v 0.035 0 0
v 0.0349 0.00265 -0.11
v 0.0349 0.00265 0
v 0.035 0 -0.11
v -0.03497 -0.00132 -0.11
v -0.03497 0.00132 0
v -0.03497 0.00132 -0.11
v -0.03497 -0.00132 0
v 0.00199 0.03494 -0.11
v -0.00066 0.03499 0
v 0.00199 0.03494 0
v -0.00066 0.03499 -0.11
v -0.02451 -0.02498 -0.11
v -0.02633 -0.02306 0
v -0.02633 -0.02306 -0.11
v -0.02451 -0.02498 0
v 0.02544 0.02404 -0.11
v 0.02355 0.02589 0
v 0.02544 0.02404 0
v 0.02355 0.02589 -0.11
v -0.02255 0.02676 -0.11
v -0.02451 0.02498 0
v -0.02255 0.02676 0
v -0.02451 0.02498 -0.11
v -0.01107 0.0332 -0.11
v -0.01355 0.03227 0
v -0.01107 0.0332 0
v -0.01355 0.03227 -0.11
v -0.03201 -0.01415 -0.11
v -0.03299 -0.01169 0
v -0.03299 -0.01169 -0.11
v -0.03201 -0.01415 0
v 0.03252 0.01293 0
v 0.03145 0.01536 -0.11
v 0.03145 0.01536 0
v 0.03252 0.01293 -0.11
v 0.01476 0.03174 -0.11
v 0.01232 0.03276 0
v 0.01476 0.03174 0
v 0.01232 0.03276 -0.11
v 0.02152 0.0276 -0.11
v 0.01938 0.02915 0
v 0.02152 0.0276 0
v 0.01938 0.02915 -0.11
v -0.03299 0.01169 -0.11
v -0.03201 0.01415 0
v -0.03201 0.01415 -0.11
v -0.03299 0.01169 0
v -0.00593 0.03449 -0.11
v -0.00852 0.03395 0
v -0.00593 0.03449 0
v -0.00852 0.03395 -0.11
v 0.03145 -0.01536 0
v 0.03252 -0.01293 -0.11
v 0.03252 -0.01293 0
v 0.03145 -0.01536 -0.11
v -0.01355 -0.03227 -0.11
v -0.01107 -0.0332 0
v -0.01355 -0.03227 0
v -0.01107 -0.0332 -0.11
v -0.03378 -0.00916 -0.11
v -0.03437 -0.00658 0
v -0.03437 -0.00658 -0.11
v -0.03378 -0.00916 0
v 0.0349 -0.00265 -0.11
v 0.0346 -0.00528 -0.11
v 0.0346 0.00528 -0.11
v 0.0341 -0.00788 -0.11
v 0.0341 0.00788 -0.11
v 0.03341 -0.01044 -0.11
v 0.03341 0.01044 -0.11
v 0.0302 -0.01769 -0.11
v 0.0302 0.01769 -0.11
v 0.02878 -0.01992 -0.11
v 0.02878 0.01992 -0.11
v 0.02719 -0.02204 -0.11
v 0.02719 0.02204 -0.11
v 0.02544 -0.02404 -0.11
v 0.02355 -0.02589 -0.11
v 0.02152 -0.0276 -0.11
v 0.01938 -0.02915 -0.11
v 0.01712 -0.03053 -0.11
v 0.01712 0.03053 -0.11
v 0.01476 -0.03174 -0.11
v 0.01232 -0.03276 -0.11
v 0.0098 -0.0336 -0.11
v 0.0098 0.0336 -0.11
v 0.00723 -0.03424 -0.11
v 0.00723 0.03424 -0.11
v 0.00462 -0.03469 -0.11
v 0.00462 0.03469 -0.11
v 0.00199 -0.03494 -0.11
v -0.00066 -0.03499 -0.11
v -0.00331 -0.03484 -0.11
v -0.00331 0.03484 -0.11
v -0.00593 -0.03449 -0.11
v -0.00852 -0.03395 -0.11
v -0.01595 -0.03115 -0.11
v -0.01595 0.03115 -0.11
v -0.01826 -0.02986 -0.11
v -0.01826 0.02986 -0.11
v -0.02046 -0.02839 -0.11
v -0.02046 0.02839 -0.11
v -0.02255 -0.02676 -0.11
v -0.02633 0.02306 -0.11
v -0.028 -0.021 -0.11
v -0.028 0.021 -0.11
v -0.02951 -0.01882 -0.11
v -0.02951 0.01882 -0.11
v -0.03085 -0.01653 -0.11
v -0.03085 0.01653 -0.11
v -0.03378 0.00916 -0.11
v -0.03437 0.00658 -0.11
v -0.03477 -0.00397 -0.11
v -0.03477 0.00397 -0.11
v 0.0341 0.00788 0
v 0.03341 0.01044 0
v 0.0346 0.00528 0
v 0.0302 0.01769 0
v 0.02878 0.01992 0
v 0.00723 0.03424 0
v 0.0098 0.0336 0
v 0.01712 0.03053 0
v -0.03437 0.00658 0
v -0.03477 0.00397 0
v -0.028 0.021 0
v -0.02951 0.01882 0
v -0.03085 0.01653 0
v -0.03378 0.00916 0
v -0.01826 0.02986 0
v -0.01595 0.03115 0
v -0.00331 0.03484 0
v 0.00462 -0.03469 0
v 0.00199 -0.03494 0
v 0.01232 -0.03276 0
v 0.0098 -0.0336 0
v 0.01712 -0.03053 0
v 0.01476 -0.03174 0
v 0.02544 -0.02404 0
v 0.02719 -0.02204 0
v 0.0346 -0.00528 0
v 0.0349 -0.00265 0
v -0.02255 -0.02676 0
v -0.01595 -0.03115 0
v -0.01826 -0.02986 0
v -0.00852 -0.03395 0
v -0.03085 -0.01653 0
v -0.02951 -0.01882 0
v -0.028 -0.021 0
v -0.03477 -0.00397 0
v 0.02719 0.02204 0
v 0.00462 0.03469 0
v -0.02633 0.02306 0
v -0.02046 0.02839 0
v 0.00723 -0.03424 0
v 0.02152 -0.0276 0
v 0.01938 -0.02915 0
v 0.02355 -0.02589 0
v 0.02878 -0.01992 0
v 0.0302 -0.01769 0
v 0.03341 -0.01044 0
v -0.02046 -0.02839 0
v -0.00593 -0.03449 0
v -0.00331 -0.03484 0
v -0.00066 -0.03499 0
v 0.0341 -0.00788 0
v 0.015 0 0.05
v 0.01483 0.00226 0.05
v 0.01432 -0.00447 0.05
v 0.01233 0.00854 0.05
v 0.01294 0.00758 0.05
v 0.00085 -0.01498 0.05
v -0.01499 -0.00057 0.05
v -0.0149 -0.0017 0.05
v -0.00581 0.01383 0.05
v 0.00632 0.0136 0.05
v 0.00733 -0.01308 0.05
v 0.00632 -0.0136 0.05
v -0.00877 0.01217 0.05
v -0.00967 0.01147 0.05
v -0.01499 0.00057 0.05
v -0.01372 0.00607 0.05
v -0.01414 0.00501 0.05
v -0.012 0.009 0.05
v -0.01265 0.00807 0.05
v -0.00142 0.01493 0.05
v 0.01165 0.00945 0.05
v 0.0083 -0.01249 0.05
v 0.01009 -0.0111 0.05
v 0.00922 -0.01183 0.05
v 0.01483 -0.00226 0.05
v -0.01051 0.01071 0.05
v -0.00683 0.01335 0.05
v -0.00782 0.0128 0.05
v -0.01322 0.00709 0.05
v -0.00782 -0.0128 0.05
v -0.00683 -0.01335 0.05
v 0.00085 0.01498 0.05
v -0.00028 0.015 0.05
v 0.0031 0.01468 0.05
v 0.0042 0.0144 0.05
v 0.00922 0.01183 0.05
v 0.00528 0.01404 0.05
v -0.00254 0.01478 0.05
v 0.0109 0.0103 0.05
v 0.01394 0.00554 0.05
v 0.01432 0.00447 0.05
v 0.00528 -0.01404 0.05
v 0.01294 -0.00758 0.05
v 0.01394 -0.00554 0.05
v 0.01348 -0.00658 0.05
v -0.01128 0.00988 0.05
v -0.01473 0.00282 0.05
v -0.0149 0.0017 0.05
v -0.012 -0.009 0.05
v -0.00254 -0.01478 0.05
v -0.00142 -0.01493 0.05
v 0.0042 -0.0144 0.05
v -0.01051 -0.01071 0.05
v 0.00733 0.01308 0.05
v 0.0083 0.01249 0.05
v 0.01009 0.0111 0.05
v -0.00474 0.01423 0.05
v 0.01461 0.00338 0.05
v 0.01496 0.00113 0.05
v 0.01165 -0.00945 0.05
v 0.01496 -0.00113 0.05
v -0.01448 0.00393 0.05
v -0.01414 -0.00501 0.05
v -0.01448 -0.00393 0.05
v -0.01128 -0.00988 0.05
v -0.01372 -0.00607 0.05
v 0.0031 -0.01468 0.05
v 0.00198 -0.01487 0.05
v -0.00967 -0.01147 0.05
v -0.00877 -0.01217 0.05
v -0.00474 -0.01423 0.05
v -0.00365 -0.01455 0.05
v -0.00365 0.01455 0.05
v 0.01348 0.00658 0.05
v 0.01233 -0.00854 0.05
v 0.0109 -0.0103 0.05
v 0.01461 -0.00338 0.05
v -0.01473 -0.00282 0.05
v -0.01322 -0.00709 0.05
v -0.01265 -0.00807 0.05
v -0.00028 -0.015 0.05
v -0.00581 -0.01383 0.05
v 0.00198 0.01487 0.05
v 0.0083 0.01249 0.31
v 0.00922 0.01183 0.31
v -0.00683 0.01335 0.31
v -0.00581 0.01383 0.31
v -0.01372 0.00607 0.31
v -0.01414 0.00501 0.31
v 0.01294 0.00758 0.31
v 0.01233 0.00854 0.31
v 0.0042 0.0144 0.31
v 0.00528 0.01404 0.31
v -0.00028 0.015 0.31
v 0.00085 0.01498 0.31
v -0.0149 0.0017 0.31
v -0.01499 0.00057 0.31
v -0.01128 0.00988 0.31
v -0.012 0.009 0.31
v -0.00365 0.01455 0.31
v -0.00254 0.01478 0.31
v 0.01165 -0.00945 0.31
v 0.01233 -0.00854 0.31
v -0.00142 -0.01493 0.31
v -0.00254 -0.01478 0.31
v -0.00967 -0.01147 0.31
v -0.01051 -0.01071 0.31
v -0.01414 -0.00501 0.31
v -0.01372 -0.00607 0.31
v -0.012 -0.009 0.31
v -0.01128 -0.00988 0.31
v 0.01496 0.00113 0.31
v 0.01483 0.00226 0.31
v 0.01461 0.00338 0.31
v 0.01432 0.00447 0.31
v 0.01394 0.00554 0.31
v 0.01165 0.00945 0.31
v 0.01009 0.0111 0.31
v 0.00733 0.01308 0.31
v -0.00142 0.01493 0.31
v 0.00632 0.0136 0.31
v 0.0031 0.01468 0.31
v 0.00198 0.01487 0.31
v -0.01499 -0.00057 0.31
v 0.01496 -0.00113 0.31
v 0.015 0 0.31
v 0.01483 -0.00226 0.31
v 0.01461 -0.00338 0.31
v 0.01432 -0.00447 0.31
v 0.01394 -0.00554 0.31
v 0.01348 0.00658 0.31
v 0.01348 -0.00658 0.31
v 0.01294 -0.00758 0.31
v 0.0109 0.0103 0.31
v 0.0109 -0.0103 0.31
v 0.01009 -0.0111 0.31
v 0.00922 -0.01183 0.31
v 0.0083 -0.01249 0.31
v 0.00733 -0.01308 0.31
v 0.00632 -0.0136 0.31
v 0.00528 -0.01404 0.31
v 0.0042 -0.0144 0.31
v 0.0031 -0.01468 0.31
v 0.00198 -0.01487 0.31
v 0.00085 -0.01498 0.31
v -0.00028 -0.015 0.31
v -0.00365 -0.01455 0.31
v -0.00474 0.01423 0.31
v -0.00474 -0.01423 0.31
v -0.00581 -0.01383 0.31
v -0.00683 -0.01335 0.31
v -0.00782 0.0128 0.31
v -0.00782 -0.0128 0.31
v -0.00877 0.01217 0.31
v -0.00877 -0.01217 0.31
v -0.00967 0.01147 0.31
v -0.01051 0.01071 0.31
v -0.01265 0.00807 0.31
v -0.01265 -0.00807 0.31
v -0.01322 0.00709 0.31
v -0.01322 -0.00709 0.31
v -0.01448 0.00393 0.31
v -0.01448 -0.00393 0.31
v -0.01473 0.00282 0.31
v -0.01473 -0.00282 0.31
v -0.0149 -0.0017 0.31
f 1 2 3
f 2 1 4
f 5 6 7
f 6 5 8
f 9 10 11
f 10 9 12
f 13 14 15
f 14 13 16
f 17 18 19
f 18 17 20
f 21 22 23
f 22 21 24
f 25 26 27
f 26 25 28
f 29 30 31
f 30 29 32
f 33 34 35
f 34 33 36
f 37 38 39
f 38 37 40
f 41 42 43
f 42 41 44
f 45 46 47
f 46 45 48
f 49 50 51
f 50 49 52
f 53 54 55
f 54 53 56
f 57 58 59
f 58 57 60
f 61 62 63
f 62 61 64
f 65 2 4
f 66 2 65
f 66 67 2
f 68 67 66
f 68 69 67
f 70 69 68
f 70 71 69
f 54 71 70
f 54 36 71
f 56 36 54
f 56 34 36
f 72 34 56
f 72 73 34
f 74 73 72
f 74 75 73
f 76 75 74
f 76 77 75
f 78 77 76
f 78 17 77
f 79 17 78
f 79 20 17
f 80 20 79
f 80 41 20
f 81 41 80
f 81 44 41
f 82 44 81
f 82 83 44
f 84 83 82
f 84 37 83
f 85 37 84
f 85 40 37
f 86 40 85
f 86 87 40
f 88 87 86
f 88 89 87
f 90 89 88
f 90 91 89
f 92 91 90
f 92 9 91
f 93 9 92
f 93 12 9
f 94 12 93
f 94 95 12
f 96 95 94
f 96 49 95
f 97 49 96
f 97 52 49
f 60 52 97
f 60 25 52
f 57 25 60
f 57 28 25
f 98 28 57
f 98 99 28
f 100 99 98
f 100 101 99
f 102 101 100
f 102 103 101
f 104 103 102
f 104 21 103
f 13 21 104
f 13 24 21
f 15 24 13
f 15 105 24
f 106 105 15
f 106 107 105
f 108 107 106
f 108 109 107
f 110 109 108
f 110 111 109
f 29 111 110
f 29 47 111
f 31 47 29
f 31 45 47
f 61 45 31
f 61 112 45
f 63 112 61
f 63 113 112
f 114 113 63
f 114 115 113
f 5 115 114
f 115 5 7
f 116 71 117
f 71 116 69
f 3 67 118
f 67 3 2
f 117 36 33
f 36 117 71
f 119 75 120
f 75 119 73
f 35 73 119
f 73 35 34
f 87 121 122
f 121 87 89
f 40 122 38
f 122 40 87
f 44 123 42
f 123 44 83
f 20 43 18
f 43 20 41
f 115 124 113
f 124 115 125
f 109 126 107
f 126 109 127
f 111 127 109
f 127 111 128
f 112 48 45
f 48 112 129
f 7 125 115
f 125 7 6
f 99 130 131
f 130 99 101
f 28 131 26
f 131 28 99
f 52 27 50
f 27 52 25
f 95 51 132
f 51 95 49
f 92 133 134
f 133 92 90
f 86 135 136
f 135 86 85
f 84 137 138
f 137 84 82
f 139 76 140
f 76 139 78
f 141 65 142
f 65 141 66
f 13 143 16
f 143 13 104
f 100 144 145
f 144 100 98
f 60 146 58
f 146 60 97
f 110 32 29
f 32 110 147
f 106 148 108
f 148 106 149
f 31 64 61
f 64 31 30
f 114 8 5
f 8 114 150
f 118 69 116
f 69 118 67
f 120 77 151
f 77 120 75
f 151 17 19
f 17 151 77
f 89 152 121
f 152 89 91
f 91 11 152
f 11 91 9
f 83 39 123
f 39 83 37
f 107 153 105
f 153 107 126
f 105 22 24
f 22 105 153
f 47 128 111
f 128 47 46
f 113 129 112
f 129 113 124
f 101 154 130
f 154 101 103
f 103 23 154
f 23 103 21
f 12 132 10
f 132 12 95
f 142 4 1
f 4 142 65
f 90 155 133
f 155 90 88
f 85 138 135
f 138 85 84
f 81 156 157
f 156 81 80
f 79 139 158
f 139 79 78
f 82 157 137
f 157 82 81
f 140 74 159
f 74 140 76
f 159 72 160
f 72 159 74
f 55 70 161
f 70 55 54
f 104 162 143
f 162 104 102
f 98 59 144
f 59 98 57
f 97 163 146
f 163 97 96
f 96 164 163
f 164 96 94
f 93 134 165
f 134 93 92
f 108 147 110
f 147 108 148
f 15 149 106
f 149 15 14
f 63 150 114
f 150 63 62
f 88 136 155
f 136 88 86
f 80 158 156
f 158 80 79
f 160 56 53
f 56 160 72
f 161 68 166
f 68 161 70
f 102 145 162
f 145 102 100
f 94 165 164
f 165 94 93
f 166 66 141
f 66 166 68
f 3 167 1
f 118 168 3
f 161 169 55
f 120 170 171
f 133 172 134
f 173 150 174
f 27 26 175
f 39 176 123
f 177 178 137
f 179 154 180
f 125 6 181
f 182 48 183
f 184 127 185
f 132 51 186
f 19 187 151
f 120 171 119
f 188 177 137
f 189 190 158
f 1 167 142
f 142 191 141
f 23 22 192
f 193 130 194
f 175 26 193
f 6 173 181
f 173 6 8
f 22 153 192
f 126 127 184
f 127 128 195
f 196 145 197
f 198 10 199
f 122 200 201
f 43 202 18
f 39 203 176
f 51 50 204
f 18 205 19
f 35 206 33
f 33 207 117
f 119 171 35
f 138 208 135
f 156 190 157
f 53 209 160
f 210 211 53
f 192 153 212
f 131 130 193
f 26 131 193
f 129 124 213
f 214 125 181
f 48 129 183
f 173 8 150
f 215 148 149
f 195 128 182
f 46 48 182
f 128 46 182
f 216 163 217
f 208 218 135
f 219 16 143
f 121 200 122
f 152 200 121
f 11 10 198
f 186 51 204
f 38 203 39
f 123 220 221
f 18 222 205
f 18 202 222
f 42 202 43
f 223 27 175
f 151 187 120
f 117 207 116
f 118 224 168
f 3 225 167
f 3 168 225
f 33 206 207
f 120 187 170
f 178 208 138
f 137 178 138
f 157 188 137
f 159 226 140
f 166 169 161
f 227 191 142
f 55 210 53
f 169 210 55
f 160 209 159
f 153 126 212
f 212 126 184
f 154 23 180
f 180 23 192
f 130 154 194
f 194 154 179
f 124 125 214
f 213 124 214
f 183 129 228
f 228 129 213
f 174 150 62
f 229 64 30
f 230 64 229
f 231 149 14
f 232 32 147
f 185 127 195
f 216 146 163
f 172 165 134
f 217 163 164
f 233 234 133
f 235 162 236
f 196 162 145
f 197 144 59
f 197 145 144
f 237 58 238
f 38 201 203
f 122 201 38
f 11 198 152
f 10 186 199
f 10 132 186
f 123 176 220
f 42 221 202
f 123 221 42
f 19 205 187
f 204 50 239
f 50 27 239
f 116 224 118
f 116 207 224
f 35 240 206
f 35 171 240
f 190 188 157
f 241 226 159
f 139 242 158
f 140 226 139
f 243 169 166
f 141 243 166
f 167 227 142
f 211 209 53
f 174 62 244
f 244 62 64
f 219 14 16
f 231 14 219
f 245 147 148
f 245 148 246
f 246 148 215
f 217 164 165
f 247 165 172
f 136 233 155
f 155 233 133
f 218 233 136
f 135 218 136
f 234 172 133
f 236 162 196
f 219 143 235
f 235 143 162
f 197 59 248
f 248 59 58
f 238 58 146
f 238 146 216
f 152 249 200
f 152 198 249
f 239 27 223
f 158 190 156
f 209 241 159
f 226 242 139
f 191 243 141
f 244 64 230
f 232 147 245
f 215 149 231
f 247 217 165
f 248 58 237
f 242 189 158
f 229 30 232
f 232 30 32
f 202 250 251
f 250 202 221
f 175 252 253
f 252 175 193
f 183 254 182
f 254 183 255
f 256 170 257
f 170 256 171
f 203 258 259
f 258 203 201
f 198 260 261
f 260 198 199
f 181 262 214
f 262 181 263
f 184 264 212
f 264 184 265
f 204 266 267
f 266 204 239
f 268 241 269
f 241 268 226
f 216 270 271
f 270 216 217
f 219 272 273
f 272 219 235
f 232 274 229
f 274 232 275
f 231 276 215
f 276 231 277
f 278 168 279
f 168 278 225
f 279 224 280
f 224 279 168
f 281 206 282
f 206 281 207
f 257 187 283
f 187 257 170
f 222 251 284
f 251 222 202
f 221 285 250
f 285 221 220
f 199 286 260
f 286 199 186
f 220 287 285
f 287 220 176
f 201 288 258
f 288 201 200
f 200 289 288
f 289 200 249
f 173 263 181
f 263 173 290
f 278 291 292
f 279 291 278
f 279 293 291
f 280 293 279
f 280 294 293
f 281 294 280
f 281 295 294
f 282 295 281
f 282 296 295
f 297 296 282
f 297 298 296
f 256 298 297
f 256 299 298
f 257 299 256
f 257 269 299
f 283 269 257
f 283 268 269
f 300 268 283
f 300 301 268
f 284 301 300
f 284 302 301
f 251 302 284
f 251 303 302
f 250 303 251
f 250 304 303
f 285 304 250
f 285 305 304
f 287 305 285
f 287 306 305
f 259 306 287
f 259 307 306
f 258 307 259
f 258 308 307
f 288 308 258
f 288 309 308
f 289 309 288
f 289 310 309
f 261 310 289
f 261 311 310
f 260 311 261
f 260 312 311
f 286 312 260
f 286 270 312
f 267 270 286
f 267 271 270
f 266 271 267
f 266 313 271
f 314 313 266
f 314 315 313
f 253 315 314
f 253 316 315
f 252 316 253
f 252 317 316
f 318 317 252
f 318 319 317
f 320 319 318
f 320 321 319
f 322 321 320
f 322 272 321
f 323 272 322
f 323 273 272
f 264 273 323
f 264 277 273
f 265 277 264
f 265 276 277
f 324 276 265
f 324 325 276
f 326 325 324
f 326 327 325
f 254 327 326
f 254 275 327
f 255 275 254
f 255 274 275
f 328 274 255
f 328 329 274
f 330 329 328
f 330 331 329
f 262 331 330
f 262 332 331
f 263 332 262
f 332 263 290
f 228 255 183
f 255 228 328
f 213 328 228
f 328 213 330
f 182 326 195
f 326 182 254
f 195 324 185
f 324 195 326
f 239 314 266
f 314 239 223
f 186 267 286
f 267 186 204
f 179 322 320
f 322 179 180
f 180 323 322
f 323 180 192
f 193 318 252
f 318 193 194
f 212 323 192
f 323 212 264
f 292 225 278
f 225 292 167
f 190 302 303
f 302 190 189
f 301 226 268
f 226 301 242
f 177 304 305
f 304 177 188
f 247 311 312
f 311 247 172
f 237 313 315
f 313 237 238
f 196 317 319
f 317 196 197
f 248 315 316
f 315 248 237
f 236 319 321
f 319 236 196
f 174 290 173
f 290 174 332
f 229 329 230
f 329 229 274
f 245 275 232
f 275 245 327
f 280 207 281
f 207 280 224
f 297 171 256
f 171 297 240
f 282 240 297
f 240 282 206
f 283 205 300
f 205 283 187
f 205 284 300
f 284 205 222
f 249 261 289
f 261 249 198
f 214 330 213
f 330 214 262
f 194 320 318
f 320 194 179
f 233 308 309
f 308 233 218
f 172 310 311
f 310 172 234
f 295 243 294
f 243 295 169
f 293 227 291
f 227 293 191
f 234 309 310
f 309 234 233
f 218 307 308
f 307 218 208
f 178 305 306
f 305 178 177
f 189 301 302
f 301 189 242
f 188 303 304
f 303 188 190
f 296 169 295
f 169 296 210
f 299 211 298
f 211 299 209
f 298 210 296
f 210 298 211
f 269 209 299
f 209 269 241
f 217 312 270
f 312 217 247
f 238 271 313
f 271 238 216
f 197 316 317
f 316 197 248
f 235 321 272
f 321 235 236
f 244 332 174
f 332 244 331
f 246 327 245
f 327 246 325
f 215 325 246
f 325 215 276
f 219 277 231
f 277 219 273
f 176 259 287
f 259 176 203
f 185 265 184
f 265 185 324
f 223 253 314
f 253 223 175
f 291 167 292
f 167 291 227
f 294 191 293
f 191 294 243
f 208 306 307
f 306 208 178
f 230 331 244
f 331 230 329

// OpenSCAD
$fn = 83;
$R1 = 0.035;
$R2 = 0.015;

union()
{

translate([0.0, 0.0, -0.11])
{
    cylinder(h=0.11, r1=$R1, r2=$R1,center=false);
}


cylinder(h=0.05, r1=$R1, r2=$R2,center=false);


translate([0.0, 0.0, 0.05])
{
    cylinder(h=0.26, r1=$R2, r2=$R2,center=false);
    }

}
